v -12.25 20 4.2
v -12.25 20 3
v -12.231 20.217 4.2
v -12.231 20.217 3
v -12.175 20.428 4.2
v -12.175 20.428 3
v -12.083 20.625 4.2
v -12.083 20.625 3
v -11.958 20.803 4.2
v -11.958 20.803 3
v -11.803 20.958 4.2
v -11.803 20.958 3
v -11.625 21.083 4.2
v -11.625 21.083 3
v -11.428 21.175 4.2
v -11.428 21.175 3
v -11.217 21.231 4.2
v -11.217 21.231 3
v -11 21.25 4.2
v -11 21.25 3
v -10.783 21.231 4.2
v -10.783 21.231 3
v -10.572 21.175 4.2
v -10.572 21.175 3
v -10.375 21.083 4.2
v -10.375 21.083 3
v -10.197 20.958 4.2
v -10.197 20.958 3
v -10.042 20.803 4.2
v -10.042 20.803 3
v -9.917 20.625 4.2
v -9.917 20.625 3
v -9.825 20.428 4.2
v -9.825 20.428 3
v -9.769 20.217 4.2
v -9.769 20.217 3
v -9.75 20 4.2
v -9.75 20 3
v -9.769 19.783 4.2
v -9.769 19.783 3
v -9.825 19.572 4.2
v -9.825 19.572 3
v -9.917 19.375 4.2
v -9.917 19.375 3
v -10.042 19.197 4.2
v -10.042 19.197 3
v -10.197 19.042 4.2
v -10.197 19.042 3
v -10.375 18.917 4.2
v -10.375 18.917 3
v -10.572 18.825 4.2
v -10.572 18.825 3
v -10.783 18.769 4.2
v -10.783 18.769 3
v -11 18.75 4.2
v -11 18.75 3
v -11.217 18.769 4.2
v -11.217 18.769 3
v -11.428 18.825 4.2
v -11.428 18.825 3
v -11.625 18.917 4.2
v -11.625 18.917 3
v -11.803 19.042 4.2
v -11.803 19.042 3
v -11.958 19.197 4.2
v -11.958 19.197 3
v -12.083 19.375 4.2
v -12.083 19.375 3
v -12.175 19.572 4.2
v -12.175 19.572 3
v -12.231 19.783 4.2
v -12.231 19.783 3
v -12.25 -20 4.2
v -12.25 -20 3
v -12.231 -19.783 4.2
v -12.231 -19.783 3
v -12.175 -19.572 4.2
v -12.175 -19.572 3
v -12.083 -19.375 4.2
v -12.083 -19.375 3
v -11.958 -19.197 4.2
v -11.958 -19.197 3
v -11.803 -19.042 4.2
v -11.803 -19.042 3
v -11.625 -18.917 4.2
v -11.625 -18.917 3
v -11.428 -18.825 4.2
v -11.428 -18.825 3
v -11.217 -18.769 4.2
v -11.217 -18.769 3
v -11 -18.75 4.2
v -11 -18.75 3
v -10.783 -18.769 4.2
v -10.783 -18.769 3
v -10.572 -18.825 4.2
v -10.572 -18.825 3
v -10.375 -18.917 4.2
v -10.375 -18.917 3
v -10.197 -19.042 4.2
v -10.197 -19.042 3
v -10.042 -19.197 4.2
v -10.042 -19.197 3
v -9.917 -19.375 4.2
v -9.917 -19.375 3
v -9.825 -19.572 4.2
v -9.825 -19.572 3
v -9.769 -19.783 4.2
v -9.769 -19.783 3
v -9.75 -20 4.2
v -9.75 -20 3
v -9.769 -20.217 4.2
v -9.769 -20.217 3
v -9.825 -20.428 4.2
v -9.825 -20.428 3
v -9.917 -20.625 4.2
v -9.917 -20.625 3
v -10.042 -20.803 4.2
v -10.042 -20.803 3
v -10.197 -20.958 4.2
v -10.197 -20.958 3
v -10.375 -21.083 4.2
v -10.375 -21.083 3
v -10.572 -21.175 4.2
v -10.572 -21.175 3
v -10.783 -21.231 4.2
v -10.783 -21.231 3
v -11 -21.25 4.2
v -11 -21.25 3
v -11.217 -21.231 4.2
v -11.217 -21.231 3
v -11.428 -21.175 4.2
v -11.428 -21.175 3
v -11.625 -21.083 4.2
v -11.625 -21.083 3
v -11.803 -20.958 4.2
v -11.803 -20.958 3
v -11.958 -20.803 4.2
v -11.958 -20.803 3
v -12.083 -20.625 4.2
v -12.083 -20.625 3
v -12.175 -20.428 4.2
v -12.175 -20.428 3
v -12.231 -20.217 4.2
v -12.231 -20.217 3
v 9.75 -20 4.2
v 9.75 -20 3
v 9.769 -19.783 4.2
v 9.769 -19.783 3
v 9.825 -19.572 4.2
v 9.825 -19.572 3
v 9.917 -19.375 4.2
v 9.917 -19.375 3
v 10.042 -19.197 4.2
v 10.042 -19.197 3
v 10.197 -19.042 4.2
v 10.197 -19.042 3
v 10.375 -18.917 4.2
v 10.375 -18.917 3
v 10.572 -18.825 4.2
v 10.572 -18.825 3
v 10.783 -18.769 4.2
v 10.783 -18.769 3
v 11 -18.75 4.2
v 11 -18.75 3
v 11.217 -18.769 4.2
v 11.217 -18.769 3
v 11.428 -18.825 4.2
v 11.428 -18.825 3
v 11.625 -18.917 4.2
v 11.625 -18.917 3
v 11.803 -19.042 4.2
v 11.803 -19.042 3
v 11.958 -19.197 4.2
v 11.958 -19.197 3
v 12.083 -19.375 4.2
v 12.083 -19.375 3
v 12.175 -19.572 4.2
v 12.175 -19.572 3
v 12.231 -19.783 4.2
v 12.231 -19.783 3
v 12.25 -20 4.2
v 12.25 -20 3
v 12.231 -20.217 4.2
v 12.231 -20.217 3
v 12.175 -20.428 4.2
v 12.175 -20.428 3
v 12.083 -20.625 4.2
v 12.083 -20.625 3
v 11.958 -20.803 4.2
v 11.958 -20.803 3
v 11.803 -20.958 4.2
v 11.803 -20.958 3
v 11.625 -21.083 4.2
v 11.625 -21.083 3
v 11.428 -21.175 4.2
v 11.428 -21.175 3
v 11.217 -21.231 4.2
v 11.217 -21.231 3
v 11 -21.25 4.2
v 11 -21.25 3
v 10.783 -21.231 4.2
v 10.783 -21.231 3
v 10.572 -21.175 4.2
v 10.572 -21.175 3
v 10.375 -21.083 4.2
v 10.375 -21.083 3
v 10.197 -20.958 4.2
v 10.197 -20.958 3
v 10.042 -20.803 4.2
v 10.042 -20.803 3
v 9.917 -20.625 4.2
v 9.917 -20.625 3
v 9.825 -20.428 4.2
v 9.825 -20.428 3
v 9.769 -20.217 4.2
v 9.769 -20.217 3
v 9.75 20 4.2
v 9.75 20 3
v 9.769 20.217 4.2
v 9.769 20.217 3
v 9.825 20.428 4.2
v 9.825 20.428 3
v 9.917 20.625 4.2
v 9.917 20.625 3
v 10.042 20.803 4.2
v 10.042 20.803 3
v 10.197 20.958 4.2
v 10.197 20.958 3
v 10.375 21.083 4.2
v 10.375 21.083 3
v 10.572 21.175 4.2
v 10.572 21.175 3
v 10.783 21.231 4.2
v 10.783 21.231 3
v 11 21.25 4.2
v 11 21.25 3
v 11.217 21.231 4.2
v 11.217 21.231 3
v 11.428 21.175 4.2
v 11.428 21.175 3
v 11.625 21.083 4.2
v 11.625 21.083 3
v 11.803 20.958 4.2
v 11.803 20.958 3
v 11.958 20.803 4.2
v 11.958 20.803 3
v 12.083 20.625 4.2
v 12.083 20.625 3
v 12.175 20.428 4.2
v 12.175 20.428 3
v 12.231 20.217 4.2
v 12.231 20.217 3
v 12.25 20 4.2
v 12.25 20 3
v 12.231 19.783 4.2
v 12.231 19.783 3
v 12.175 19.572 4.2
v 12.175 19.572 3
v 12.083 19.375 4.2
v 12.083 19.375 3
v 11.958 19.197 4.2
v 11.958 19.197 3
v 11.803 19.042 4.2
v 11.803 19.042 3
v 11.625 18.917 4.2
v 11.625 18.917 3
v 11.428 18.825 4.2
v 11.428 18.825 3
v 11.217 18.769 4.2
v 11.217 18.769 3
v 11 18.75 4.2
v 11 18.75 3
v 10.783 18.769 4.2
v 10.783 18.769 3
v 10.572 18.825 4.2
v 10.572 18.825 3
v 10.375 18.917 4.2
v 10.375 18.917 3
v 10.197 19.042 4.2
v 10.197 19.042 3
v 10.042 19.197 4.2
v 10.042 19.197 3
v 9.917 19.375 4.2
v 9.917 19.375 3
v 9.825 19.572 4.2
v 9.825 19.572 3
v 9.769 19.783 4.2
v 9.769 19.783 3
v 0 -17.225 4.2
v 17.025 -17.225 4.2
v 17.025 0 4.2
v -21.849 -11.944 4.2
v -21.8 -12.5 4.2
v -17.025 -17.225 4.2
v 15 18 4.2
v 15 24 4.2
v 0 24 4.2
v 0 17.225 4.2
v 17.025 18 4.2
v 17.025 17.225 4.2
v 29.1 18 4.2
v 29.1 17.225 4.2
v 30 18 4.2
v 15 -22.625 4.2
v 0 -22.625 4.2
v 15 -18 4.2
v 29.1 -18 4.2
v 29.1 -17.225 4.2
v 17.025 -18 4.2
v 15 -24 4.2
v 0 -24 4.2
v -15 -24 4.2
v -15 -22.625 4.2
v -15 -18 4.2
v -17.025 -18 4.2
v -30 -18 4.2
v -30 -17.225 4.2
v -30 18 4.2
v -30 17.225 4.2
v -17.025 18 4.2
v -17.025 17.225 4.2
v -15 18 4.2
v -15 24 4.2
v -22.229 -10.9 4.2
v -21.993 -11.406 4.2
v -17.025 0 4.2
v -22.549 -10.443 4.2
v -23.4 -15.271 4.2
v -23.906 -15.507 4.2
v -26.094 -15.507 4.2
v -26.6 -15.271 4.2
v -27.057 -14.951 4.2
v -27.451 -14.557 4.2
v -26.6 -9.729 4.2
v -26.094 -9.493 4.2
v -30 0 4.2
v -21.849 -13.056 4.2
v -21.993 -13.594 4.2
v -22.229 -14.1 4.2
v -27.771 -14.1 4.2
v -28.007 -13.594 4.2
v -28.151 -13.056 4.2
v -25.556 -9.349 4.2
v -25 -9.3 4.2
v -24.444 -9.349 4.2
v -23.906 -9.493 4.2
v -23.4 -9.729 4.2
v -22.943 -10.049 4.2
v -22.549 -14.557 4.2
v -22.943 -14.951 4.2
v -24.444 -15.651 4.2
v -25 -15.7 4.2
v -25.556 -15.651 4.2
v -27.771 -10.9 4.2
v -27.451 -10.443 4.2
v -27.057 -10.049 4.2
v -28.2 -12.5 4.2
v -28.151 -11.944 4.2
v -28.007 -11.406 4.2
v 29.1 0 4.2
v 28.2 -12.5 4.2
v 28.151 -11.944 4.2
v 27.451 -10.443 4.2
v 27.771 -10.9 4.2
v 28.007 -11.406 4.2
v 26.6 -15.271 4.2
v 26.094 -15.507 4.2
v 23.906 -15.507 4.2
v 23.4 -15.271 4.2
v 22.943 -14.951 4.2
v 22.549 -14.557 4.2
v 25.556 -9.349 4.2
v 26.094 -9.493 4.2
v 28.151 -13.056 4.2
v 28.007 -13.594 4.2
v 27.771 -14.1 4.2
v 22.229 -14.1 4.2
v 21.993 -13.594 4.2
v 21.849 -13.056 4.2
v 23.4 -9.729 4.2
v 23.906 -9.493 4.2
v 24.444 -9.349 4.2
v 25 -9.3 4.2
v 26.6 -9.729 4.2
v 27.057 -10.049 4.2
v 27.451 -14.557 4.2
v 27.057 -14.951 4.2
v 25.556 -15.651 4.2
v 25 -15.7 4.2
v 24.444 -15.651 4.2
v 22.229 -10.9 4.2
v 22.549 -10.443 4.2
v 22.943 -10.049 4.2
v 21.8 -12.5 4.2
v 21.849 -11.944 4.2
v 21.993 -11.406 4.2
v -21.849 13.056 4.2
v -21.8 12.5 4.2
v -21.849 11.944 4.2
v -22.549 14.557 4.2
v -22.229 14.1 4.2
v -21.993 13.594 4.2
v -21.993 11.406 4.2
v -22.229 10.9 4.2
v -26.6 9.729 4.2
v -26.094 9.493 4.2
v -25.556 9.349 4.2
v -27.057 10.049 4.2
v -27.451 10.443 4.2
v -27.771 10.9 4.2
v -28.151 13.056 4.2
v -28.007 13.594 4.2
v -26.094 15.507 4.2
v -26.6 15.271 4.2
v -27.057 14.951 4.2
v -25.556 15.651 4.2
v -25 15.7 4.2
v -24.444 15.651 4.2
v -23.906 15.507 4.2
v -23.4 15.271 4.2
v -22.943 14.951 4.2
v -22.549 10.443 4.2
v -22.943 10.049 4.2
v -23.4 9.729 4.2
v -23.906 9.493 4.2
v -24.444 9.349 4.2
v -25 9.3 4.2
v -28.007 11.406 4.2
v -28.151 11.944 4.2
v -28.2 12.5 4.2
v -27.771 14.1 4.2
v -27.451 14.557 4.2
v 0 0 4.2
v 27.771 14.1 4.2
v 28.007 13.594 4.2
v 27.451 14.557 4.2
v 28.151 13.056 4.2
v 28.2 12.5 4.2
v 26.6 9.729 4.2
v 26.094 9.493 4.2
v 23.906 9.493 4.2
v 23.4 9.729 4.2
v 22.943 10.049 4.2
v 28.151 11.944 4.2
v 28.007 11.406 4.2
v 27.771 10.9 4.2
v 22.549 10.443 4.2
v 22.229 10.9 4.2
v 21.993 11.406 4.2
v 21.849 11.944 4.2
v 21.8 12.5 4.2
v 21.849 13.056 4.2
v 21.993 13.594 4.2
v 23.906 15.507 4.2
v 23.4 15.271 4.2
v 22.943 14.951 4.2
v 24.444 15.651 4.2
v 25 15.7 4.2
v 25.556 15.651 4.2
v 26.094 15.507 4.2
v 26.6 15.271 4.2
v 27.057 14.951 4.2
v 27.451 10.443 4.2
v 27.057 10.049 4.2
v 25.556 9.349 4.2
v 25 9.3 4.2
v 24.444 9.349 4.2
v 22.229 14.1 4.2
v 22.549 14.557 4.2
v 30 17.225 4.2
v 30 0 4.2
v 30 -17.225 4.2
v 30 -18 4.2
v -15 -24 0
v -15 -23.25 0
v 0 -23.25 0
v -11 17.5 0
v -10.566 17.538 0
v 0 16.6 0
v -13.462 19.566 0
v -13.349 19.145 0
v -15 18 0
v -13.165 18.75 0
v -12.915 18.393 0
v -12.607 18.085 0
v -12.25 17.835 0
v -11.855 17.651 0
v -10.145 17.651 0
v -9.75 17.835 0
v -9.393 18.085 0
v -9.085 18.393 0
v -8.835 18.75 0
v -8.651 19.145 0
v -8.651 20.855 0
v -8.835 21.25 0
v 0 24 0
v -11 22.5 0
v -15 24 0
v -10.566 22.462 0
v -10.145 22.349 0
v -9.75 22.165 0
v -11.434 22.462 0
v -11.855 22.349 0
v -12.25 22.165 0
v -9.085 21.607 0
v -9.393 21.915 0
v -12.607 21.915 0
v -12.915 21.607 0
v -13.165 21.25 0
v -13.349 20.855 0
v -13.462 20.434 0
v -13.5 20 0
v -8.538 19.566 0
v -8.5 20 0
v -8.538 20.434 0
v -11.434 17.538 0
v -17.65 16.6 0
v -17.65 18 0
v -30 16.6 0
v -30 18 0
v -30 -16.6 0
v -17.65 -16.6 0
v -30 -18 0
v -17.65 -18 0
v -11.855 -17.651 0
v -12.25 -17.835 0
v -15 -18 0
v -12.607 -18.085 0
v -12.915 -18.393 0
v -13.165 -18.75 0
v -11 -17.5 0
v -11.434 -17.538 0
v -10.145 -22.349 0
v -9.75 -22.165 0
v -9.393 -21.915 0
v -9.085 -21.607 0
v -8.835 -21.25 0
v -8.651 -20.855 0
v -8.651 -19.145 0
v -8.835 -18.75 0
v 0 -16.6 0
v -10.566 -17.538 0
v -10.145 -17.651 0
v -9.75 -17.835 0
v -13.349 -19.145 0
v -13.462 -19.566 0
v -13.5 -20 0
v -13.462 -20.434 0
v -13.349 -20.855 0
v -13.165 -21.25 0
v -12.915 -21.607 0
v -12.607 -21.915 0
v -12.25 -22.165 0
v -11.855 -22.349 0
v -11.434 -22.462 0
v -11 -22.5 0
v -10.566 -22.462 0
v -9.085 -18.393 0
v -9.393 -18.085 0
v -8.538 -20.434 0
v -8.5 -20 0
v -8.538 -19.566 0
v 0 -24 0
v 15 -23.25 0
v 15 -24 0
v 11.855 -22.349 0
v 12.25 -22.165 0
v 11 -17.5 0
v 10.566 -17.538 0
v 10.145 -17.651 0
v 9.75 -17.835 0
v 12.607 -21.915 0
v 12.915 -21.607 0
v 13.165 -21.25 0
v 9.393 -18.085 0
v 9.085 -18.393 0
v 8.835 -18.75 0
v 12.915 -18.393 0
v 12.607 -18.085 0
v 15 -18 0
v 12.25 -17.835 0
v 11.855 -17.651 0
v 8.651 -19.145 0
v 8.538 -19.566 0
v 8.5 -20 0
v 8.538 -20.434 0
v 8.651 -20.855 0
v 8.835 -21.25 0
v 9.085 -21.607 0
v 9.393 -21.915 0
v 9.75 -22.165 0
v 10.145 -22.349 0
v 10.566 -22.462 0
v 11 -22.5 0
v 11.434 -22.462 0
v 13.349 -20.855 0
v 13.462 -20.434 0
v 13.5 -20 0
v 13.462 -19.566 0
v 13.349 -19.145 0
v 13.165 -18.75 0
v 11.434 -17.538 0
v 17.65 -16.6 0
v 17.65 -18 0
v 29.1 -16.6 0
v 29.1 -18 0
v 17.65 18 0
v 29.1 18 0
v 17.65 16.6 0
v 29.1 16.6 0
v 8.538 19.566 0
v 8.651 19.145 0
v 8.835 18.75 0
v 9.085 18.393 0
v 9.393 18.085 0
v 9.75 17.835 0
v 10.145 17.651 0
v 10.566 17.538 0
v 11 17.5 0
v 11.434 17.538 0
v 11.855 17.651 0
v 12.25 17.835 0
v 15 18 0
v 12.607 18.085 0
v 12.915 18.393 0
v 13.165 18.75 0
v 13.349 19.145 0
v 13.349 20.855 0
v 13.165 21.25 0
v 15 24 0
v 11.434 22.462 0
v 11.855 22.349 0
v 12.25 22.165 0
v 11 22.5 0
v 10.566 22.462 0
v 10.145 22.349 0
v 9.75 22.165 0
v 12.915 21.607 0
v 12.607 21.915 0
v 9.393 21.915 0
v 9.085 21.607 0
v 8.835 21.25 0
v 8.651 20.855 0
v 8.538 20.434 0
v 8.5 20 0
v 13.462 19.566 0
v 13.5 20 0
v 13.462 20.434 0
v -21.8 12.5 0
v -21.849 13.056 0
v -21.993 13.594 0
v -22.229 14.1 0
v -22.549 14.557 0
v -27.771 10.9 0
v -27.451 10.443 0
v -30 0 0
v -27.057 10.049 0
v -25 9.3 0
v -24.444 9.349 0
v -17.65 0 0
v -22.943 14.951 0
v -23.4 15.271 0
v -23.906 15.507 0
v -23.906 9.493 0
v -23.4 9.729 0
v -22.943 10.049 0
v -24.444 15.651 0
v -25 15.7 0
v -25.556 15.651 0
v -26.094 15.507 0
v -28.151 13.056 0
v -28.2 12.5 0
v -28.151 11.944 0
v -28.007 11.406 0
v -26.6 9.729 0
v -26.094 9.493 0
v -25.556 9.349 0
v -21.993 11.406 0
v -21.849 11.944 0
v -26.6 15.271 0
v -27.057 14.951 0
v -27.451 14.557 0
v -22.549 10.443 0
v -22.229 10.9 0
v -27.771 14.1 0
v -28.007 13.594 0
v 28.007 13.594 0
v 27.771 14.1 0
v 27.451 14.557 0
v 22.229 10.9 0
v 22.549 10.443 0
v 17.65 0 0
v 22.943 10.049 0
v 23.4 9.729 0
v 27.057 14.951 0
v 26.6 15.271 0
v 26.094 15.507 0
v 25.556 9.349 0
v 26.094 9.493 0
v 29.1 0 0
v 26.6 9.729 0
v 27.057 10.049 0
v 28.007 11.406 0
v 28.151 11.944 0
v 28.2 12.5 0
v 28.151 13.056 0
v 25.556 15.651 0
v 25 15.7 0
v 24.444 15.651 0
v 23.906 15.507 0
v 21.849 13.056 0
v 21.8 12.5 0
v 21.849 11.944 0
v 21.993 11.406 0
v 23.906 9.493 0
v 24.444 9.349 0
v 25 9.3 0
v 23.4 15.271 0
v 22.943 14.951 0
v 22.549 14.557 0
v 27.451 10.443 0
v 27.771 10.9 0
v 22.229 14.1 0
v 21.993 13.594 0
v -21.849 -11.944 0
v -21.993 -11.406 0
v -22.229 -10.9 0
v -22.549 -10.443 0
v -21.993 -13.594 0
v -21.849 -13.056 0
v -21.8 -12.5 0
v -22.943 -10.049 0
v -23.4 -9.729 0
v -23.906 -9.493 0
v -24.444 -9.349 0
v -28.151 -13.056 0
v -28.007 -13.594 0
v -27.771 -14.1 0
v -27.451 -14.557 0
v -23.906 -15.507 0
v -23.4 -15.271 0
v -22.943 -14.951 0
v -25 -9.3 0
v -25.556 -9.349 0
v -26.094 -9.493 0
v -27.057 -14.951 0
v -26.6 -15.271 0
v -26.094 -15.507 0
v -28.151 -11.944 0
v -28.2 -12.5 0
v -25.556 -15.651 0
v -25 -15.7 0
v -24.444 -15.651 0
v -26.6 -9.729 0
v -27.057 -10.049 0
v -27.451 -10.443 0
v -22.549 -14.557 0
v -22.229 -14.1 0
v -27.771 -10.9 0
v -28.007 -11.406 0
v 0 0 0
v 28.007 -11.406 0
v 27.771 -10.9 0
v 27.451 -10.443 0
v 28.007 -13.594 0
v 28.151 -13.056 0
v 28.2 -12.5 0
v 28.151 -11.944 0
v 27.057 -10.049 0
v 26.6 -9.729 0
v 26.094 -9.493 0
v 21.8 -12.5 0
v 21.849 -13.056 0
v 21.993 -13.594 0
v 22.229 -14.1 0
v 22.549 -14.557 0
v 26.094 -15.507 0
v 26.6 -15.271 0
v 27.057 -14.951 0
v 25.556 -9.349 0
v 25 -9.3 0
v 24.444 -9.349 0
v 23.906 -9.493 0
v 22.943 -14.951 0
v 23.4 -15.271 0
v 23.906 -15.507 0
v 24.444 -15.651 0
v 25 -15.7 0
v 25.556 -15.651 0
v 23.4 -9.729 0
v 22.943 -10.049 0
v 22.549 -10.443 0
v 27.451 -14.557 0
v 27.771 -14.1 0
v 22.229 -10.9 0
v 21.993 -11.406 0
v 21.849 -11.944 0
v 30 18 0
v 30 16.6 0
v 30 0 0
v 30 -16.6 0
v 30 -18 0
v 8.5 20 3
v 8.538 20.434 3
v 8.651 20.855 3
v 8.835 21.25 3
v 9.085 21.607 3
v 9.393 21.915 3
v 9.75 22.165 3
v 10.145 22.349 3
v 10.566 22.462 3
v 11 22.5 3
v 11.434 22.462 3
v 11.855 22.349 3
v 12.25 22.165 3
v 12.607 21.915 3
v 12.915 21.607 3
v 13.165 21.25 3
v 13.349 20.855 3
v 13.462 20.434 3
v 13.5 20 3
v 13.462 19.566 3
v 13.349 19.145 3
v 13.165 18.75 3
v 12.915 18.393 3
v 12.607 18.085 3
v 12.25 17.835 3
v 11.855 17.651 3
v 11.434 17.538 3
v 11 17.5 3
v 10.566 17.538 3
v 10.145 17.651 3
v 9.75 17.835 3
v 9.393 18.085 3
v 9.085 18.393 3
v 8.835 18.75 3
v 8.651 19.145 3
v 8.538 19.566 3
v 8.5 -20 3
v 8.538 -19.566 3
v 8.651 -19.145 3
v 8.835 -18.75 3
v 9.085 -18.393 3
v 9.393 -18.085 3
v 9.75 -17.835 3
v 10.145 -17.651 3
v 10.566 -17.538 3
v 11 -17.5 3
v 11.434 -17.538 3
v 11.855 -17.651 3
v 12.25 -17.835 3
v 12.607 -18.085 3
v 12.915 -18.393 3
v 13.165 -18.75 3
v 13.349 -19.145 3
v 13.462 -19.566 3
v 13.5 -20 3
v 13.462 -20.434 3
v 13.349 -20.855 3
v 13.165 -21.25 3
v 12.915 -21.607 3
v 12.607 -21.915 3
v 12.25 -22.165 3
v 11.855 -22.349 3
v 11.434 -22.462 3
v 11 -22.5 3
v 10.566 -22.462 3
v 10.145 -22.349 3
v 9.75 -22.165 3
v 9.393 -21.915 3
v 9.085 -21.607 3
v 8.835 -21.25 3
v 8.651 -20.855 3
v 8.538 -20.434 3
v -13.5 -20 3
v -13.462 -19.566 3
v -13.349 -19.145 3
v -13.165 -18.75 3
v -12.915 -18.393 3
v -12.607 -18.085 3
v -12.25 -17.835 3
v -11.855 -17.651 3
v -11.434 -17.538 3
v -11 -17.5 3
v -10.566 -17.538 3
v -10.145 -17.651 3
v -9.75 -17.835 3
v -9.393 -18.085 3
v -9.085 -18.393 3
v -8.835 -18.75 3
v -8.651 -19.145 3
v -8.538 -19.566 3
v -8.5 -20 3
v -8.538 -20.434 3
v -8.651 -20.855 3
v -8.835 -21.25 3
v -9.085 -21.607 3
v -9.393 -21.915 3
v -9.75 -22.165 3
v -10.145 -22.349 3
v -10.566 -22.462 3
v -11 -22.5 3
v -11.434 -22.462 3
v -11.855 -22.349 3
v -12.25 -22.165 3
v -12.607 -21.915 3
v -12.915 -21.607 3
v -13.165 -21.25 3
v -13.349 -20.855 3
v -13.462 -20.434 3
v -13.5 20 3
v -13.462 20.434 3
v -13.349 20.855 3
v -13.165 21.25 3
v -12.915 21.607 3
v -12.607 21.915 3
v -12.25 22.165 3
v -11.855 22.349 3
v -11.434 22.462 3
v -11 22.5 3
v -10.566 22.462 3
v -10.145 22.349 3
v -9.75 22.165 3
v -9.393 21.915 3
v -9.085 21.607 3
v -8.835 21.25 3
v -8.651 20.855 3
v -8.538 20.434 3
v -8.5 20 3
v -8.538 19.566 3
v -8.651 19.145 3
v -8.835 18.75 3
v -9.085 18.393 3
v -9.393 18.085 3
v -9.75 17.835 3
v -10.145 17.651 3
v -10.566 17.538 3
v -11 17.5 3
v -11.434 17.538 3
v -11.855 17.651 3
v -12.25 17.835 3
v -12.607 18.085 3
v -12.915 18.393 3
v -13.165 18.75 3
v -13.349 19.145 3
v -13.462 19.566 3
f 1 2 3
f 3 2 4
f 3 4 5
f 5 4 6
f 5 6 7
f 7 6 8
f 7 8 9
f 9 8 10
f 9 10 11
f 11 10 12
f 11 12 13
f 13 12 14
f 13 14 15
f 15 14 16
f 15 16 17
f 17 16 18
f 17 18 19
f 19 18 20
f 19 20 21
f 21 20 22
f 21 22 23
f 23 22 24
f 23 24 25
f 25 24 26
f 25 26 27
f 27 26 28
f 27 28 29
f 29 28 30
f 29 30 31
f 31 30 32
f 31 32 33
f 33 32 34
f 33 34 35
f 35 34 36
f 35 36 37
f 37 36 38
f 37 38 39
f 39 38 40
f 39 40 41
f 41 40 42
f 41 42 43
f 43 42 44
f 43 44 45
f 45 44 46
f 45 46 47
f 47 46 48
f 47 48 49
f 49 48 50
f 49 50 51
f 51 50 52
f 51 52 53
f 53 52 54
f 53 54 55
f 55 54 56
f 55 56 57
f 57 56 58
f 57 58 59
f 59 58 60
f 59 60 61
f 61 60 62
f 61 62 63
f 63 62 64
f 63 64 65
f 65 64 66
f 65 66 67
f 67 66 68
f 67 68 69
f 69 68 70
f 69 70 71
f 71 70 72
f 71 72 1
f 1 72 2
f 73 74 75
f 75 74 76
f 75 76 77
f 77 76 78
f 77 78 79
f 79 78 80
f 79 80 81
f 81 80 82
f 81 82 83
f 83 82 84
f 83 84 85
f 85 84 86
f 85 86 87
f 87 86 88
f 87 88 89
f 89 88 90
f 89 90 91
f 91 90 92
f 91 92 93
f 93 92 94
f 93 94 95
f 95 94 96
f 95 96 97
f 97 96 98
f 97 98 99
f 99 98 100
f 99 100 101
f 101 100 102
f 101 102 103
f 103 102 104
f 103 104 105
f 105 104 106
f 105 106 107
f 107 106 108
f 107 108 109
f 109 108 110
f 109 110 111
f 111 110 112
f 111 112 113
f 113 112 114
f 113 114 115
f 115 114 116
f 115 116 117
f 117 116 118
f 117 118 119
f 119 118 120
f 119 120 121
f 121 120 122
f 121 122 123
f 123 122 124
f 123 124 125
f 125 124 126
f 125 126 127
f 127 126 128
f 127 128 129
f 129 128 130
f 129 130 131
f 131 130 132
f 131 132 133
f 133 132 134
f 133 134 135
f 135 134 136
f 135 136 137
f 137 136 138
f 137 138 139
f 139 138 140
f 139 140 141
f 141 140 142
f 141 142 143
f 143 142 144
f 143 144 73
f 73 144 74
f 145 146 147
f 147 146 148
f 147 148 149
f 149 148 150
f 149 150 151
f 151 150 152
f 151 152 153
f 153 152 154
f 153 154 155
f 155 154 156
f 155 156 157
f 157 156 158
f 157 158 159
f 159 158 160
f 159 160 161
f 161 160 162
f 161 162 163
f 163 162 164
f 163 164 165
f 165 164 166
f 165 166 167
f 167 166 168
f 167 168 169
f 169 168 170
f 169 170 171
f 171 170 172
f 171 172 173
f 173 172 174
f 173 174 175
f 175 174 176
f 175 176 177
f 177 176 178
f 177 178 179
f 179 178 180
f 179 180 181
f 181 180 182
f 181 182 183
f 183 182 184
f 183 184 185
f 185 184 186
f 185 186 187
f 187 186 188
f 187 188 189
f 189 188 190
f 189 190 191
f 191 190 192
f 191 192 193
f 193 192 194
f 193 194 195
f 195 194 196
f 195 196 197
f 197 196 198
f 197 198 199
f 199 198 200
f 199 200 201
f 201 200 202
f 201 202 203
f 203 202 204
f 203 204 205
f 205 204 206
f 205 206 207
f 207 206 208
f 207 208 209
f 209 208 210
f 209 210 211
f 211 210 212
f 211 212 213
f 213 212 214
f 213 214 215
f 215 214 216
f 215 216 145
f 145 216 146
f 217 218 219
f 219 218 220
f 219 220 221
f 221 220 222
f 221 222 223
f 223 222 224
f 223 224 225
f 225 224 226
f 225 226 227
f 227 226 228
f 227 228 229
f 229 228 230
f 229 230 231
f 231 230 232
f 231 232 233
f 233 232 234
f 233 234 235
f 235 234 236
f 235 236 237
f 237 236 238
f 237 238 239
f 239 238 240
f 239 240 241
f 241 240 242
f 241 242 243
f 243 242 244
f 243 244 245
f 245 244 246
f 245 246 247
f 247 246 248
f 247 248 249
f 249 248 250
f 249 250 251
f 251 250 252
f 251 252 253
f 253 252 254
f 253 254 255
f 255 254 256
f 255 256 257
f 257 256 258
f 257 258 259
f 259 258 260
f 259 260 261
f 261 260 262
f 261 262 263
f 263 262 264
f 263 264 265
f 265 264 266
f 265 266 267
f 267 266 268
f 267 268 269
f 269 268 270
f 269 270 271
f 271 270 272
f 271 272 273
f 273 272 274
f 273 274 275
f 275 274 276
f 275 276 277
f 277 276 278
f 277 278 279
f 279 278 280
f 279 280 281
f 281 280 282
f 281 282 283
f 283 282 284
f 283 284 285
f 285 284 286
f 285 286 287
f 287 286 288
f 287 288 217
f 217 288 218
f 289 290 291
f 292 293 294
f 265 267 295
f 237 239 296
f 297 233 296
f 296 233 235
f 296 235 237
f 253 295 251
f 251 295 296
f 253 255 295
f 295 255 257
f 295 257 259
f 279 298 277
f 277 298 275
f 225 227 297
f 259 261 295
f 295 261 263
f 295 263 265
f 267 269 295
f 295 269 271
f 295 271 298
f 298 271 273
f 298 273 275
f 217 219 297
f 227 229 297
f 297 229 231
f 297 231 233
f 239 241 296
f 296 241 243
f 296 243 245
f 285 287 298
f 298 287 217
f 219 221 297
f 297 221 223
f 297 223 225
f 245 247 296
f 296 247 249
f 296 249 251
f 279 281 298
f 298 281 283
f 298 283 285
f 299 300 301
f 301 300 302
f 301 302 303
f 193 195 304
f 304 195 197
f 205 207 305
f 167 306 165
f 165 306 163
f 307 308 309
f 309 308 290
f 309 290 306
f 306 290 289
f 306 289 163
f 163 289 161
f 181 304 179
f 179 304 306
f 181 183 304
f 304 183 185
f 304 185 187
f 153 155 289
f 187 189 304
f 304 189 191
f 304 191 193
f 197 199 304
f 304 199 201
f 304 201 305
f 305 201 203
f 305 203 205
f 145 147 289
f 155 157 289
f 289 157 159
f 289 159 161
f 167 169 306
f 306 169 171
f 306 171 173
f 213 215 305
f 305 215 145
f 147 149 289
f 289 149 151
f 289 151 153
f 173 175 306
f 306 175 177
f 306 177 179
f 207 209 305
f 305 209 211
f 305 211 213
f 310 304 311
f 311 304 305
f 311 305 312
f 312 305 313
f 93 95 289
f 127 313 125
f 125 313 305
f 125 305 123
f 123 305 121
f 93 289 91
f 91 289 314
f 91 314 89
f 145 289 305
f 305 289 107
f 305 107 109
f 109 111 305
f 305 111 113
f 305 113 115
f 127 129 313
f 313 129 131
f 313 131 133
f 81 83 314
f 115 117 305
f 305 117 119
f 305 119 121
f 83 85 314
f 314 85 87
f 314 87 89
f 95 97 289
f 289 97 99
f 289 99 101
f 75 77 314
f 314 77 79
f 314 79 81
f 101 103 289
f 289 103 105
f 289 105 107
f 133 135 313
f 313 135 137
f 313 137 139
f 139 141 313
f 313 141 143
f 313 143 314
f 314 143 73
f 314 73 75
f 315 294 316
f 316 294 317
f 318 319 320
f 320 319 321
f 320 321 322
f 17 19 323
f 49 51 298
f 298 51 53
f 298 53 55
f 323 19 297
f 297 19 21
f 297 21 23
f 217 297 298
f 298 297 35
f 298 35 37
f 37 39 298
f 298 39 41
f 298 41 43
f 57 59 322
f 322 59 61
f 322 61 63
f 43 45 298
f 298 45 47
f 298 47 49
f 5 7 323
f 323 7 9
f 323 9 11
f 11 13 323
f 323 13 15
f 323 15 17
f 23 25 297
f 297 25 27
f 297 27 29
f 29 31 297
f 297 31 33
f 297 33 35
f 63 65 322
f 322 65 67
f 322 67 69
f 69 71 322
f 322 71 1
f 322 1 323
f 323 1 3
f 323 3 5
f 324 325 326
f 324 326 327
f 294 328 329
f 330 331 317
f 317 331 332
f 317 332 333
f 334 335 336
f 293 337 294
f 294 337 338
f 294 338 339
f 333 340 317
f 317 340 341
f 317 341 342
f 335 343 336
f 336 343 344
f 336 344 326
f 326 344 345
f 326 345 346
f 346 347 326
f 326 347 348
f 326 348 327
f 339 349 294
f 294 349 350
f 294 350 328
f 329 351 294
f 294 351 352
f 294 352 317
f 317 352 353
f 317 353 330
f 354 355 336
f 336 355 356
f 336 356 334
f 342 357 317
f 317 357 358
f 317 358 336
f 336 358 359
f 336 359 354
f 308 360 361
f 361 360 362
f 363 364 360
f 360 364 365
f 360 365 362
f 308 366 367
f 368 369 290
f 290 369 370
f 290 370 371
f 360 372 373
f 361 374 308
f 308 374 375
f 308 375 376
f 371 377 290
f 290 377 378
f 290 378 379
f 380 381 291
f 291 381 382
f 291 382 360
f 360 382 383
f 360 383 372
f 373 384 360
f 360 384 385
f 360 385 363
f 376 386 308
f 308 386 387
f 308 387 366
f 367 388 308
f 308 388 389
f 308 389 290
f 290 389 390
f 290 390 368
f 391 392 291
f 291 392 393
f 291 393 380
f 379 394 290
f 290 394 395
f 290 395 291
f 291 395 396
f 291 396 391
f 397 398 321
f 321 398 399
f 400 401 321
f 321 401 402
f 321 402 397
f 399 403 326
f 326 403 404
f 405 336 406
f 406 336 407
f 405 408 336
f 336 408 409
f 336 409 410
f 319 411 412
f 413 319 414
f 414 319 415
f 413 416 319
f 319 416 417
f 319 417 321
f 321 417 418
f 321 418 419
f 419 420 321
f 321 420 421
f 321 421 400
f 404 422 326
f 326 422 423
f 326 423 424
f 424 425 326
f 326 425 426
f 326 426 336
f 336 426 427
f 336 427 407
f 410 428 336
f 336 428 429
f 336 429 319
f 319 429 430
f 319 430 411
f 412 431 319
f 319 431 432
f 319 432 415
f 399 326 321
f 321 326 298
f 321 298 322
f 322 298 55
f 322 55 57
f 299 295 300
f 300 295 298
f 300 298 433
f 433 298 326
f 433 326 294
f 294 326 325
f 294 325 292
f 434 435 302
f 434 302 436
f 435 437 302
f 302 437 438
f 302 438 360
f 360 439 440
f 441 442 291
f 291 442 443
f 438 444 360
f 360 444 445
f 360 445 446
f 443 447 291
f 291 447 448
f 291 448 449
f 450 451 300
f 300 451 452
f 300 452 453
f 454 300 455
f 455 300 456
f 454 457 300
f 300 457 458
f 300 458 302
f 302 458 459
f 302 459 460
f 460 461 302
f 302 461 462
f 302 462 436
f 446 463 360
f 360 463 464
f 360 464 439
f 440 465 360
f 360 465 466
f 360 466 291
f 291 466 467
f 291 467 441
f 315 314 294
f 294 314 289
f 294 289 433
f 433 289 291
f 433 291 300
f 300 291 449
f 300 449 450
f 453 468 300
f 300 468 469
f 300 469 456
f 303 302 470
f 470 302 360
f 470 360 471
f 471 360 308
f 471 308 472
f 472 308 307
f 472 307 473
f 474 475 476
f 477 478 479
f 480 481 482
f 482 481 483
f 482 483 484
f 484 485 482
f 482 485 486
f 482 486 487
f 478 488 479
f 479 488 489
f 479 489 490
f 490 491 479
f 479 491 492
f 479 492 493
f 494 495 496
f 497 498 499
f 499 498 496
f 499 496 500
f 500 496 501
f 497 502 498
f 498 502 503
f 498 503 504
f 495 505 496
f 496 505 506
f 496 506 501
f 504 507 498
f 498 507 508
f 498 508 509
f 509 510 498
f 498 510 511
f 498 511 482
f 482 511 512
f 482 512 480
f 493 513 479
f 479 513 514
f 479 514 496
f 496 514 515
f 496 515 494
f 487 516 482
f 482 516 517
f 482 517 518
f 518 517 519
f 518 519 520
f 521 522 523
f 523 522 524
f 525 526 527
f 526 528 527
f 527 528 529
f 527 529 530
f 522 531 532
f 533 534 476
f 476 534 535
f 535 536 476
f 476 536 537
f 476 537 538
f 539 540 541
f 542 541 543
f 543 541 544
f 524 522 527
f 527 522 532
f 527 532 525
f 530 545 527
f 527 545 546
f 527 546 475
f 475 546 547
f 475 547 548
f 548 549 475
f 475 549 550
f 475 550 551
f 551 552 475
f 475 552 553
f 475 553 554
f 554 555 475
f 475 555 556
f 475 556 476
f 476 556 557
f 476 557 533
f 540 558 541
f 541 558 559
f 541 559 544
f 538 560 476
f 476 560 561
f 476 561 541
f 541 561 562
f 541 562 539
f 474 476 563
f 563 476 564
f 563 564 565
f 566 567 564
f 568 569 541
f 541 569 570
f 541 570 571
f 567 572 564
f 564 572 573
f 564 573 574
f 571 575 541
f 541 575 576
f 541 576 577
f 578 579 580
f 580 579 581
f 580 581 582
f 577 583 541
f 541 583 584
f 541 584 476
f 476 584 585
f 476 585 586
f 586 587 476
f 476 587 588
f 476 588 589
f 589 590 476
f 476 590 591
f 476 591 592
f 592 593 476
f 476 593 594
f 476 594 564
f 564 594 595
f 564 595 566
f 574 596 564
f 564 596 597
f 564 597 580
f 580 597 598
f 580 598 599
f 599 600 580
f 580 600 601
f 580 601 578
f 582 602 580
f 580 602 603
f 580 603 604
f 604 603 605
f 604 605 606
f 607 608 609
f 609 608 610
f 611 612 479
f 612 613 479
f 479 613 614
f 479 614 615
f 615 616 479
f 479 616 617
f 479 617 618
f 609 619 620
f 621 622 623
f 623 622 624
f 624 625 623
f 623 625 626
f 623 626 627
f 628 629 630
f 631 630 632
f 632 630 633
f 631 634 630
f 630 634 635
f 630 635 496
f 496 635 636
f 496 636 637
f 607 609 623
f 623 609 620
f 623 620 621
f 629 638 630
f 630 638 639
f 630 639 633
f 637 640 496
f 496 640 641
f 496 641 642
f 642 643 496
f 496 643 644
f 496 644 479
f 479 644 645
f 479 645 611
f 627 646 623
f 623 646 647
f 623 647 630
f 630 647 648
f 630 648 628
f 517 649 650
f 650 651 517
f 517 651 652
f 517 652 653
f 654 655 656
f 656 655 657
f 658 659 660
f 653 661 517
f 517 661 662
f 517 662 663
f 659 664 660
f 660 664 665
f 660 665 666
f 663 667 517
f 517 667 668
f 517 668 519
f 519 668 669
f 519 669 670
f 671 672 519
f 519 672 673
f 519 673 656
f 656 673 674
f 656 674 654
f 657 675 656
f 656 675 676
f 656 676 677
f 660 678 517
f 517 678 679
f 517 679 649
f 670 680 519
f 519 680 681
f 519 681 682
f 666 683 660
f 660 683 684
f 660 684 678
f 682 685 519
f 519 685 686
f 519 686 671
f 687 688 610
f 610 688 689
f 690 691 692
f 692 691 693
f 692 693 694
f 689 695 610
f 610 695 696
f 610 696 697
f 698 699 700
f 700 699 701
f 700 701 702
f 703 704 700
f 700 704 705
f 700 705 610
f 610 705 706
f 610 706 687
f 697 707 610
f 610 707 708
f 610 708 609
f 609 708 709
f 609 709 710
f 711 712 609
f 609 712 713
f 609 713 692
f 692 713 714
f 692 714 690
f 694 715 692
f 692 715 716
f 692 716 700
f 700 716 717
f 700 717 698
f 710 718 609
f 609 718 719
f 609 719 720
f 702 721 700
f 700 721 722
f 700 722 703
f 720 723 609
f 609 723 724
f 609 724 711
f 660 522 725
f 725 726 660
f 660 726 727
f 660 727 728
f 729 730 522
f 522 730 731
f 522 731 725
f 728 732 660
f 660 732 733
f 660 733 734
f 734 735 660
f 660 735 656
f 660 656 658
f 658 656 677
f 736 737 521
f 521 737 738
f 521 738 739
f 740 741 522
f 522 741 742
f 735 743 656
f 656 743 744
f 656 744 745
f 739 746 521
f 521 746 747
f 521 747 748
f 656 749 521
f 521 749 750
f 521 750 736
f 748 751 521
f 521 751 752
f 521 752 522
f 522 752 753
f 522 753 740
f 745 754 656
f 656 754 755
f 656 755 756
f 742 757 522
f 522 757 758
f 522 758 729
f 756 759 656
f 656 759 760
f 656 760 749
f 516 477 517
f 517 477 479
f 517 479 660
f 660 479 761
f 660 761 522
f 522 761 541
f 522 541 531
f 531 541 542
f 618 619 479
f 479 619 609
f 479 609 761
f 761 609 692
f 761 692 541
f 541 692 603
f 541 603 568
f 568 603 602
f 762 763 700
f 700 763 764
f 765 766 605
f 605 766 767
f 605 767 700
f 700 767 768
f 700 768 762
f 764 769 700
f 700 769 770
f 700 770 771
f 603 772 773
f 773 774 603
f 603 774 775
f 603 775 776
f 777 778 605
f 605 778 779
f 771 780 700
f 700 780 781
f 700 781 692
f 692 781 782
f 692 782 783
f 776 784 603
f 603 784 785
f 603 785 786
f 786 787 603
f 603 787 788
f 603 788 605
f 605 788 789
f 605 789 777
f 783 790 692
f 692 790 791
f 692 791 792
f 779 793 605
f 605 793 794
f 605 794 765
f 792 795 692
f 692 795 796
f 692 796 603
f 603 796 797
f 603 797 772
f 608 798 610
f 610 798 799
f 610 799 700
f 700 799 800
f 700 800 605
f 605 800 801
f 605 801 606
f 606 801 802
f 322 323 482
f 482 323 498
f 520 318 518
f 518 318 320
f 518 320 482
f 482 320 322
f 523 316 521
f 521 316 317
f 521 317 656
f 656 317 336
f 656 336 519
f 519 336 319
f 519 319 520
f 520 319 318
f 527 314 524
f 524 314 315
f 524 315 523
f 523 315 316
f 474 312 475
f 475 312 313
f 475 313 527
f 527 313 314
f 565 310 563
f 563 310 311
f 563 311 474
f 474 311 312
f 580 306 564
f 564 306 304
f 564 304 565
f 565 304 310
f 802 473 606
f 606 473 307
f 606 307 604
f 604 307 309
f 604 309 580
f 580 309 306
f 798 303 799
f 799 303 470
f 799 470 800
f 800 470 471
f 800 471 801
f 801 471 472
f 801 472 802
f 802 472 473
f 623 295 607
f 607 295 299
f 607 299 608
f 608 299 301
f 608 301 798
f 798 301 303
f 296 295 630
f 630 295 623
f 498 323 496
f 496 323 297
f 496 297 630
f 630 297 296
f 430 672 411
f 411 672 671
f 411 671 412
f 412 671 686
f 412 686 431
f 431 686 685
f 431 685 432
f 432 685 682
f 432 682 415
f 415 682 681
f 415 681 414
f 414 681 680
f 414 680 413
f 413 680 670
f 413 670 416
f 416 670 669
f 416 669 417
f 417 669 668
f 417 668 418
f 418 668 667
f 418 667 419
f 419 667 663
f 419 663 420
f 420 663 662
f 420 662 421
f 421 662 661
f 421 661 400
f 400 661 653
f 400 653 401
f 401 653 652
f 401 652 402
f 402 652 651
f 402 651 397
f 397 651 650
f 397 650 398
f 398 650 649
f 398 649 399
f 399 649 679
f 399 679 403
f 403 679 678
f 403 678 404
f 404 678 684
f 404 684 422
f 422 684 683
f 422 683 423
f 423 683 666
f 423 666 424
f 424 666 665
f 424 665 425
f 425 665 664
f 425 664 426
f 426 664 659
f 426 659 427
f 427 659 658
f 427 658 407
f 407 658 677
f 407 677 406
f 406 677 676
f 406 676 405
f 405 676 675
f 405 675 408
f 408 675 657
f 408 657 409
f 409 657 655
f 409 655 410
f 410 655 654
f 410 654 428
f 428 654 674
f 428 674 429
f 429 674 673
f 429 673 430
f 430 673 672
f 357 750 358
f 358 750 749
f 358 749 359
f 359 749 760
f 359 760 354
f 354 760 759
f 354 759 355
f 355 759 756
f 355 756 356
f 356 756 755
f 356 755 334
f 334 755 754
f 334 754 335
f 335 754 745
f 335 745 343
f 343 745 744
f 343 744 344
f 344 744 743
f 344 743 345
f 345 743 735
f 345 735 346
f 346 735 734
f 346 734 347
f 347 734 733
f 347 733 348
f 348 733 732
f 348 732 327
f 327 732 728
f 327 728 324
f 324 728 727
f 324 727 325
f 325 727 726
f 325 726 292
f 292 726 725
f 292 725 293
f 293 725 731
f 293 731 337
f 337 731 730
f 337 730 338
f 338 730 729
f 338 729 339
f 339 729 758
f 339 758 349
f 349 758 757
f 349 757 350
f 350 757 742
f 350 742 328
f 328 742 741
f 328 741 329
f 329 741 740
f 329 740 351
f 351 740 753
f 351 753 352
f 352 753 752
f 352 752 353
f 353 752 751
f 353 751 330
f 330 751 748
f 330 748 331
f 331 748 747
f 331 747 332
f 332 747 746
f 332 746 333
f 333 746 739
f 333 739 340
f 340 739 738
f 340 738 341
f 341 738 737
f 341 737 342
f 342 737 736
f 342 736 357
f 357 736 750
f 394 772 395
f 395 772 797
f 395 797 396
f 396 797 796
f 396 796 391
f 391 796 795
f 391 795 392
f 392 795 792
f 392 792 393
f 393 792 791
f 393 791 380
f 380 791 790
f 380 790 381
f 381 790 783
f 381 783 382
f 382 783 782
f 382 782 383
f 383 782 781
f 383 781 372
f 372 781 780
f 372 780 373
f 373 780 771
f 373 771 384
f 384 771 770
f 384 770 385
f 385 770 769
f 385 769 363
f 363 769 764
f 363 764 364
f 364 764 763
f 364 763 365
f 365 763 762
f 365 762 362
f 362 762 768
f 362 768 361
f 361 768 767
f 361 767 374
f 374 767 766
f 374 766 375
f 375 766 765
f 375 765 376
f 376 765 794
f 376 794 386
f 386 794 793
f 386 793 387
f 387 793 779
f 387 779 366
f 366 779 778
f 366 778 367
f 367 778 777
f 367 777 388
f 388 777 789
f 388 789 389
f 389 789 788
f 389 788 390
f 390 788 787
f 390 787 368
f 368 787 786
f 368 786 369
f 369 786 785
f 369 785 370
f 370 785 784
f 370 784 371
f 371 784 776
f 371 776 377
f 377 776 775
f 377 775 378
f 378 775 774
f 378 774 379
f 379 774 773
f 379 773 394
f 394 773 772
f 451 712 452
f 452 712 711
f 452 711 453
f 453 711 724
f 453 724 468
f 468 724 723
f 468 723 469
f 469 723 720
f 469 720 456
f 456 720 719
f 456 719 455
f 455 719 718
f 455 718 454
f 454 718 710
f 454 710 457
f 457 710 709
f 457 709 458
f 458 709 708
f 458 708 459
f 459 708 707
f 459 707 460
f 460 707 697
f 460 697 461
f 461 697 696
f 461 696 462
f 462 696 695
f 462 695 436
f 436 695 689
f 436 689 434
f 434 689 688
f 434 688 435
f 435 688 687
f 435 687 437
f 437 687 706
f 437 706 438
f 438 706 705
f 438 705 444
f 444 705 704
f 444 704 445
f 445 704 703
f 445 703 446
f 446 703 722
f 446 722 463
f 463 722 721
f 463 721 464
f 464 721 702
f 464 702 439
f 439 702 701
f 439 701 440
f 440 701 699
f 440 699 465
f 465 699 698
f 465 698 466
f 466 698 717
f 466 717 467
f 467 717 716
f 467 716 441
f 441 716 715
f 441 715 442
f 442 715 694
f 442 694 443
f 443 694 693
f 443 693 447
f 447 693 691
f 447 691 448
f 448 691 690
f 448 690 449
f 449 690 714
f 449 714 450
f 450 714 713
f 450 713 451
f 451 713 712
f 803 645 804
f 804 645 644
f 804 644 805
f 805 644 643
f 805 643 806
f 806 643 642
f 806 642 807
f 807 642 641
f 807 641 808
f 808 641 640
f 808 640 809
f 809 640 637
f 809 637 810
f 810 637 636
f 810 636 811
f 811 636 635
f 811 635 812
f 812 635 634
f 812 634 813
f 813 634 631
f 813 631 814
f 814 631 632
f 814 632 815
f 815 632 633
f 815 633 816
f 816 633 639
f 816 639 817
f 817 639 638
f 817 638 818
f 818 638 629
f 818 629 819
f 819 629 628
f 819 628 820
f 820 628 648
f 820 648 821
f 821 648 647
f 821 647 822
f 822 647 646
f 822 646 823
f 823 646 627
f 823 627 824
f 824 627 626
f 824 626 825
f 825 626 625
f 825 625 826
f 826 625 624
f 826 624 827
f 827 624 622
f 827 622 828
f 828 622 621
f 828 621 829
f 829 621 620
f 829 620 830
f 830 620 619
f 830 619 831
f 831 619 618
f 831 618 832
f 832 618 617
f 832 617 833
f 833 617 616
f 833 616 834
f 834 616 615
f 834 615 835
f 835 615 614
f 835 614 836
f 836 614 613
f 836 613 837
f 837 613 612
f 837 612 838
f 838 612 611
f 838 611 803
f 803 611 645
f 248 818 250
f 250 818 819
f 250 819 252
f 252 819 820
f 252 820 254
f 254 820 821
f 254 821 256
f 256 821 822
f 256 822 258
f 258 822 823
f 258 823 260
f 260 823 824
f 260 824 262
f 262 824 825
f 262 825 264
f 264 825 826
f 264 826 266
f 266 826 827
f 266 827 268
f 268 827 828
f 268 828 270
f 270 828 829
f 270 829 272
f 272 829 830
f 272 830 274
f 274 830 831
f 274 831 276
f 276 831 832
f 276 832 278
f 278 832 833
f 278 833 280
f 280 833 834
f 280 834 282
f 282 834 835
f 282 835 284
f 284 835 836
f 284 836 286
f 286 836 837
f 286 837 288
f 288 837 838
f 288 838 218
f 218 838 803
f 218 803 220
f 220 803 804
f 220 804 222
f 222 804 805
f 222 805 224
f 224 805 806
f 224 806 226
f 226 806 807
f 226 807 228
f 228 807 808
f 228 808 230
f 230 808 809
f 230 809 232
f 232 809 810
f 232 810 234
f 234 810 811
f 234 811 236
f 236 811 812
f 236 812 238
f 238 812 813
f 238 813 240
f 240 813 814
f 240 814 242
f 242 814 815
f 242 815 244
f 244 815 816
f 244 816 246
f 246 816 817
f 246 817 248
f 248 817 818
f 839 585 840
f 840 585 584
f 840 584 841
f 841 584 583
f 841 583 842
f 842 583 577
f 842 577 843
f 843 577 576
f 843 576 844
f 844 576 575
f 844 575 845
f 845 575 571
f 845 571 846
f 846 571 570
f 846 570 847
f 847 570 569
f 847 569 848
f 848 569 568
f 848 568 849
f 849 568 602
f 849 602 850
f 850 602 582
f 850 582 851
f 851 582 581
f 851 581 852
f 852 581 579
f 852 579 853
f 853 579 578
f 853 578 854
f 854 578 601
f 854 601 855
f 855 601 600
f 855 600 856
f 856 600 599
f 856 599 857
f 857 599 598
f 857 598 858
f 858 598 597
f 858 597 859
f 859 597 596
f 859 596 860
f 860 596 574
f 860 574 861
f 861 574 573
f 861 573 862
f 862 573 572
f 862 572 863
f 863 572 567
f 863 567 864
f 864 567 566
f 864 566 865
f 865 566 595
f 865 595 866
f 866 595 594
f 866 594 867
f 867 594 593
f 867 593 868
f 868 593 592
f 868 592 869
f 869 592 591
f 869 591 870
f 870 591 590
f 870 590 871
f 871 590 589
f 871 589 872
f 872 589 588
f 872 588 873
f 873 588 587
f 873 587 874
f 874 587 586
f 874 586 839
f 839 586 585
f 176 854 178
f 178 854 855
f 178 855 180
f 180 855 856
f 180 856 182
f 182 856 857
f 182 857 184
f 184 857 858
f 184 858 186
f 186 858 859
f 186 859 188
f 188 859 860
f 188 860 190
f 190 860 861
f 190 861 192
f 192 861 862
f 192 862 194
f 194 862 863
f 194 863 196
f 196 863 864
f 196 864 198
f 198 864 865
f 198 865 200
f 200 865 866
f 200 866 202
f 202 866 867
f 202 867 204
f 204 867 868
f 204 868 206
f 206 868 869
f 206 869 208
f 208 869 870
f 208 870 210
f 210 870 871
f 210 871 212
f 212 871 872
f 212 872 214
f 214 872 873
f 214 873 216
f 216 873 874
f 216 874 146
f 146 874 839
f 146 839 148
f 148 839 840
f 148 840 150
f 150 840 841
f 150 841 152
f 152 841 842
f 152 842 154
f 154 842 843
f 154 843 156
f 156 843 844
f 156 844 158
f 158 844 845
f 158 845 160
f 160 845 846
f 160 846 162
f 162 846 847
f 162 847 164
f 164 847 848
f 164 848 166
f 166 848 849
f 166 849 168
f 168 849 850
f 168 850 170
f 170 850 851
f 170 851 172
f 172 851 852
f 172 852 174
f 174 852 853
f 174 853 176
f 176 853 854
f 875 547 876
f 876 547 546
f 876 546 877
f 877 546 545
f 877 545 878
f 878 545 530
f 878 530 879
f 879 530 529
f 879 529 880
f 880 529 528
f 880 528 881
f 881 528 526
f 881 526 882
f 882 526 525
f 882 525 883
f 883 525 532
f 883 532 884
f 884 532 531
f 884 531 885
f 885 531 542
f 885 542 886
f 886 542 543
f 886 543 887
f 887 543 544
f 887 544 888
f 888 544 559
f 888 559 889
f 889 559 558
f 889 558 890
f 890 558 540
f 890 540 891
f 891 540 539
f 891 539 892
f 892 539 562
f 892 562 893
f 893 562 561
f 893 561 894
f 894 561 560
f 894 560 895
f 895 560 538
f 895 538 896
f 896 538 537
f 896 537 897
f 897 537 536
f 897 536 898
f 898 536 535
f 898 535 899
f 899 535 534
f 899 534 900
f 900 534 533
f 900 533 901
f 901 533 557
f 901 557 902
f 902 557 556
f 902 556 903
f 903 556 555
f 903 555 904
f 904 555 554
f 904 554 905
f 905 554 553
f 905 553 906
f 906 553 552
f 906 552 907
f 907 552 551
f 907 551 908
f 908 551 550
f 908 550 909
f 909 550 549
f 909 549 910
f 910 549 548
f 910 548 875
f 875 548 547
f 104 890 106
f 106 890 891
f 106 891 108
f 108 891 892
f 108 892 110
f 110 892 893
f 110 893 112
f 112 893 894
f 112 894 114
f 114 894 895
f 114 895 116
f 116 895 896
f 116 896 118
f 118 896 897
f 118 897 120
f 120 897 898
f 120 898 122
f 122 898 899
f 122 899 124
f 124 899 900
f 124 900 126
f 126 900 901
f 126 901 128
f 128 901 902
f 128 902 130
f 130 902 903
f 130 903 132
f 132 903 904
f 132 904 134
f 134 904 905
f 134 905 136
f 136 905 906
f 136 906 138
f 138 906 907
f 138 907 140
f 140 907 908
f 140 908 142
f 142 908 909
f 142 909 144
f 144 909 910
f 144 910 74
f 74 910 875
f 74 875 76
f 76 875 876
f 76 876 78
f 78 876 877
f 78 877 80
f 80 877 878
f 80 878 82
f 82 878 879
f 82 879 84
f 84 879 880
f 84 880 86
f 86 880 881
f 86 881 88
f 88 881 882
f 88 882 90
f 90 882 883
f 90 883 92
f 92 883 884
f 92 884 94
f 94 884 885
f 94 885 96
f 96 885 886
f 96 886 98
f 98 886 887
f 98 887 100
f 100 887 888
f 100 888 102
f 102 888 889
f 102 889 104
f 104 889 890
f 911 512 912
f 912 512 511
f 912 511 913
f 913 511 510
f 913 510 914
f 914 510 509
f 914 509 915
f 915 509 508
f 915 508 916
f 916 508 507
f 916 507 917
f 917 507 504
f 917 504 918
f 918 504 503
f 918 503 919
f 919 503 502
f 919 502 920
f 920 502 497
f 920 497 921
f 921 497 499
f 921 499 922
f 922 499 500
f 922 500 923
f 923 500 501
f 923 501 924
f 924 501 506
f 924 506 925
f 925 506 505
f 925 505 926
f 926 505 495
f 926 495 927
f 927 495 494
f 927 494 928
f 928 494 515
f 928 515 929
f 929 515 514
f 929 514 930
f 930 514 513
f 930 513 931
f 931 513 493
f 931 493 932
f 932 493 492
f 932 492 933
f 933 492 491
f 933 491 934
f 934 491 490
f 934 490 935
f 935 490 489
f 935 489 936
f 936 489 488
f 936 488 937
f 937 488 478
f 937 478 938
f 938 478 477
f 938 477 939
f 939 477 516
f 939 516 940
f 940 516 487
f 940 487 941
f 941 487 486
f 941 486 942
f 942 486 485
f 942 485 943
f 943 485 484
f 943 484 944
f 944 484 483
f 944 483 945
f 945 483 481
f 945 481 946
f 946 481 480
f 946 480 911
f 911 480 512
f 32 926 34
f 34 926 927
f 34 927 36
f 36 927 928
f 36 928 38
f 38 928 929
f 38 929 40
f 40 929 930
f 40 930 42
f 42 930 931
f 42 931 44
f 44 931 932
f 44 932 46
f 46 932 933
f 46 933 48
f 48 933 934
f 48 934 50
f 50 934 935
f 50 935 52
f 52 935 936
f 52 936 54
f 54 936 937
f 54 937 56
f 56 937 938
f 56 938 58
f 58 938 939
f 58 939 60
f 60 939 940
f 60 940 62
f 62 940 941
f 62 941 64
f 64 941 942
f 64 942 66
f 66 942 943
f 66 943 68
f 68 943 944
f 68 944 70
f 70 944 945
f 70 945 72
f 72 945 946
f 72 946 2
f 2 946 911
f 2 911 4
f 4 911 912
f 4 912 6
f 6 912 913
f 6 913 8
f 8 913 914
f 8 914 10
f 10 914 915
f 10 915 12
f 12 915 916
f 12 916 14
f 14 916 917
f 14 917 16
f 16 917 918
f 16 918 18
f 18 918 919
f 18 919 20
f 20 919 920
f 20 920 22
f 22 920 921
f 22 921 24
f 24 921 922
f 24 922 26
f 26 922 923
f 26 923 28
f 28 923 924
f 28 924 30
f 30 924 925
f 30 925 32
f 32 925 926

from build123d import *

# Parameters (mm, degrees)
SKETCH_1_R          = 3.2
SKETCH_1_R_2        = 1.25
EXTRUDE_1_DEPTH     = 4.2
SKETCH_2_R          = 2.5
CUT_EXTRUDE_1_DEPTH = 3


with BuildPart() as part:
    # 스케치1 → 보스-돌출1 (new body)
    with BuildSketch(Plane.XY):
        Polygon((15, 24), (-15, 24), (-15, 18), (-30, 18), (-30, -18), (-15, -18), (-15, -24), (15, -24), (15, -18), (30, -18), (30, 18), (15, 18), align=None)
        with Locations((-25, 12.5)):
            Circle(SKETCH_1_R, mode=Mode.SUBTRACT)
        with Locations((-11, 20)):
            Circle(SKETCH_1_R_2, mode=Mode.SUBTRACT)
        with Locations((-11, -20)):
            Circle(SKETCH_1_R_2, mode=Mode.SUBTRACT)
        with Locations((-25, -12.5)):
            Circle(SKETCH_1_R, mode=Mode.SUBTRACT)
        with Locations((25, -12.5)):
            Circle(SKETCH_1_R, mode=Mode.SUBTRACT)
        with Locations((11, -20)):
            Circle(SKETCH_1_R_2, mode=Mode.SUBTRACT)
        with Locations((11, 20)):
            Circle(SKETCH_1_R_2, mode=Mode.SUBTRACT)
        with Locations((25, 12.5)):
            Circle(SKETCH_1_R, mode=Mode.SUBTRACT)
    extrude(amount=EXTRUDE_1_DEPTH)

    # 스케치2 → 컷-돌출1 (cut)
    with BuildSketch(Plane(origin=(0, 0, 0), x_dir=(-1, 0, 0), z_dir=(0, 0, -1))):
        with Locations((-11, 20)):
            Circle(SKETCH_2_R)
        with Locations((11, 20)):
            Circle(SKETCH_2_R)
        with Locations((11, -20)):
            Circle(SKETCH_2_R)
        with Locations((-11, -20)):
            Circle(SKETCH_2_R)
    extrude(amount=-CUT_EXTRUDE_1_DEPTH, mode=Mode.SUBTRACT)


solid = part.part
